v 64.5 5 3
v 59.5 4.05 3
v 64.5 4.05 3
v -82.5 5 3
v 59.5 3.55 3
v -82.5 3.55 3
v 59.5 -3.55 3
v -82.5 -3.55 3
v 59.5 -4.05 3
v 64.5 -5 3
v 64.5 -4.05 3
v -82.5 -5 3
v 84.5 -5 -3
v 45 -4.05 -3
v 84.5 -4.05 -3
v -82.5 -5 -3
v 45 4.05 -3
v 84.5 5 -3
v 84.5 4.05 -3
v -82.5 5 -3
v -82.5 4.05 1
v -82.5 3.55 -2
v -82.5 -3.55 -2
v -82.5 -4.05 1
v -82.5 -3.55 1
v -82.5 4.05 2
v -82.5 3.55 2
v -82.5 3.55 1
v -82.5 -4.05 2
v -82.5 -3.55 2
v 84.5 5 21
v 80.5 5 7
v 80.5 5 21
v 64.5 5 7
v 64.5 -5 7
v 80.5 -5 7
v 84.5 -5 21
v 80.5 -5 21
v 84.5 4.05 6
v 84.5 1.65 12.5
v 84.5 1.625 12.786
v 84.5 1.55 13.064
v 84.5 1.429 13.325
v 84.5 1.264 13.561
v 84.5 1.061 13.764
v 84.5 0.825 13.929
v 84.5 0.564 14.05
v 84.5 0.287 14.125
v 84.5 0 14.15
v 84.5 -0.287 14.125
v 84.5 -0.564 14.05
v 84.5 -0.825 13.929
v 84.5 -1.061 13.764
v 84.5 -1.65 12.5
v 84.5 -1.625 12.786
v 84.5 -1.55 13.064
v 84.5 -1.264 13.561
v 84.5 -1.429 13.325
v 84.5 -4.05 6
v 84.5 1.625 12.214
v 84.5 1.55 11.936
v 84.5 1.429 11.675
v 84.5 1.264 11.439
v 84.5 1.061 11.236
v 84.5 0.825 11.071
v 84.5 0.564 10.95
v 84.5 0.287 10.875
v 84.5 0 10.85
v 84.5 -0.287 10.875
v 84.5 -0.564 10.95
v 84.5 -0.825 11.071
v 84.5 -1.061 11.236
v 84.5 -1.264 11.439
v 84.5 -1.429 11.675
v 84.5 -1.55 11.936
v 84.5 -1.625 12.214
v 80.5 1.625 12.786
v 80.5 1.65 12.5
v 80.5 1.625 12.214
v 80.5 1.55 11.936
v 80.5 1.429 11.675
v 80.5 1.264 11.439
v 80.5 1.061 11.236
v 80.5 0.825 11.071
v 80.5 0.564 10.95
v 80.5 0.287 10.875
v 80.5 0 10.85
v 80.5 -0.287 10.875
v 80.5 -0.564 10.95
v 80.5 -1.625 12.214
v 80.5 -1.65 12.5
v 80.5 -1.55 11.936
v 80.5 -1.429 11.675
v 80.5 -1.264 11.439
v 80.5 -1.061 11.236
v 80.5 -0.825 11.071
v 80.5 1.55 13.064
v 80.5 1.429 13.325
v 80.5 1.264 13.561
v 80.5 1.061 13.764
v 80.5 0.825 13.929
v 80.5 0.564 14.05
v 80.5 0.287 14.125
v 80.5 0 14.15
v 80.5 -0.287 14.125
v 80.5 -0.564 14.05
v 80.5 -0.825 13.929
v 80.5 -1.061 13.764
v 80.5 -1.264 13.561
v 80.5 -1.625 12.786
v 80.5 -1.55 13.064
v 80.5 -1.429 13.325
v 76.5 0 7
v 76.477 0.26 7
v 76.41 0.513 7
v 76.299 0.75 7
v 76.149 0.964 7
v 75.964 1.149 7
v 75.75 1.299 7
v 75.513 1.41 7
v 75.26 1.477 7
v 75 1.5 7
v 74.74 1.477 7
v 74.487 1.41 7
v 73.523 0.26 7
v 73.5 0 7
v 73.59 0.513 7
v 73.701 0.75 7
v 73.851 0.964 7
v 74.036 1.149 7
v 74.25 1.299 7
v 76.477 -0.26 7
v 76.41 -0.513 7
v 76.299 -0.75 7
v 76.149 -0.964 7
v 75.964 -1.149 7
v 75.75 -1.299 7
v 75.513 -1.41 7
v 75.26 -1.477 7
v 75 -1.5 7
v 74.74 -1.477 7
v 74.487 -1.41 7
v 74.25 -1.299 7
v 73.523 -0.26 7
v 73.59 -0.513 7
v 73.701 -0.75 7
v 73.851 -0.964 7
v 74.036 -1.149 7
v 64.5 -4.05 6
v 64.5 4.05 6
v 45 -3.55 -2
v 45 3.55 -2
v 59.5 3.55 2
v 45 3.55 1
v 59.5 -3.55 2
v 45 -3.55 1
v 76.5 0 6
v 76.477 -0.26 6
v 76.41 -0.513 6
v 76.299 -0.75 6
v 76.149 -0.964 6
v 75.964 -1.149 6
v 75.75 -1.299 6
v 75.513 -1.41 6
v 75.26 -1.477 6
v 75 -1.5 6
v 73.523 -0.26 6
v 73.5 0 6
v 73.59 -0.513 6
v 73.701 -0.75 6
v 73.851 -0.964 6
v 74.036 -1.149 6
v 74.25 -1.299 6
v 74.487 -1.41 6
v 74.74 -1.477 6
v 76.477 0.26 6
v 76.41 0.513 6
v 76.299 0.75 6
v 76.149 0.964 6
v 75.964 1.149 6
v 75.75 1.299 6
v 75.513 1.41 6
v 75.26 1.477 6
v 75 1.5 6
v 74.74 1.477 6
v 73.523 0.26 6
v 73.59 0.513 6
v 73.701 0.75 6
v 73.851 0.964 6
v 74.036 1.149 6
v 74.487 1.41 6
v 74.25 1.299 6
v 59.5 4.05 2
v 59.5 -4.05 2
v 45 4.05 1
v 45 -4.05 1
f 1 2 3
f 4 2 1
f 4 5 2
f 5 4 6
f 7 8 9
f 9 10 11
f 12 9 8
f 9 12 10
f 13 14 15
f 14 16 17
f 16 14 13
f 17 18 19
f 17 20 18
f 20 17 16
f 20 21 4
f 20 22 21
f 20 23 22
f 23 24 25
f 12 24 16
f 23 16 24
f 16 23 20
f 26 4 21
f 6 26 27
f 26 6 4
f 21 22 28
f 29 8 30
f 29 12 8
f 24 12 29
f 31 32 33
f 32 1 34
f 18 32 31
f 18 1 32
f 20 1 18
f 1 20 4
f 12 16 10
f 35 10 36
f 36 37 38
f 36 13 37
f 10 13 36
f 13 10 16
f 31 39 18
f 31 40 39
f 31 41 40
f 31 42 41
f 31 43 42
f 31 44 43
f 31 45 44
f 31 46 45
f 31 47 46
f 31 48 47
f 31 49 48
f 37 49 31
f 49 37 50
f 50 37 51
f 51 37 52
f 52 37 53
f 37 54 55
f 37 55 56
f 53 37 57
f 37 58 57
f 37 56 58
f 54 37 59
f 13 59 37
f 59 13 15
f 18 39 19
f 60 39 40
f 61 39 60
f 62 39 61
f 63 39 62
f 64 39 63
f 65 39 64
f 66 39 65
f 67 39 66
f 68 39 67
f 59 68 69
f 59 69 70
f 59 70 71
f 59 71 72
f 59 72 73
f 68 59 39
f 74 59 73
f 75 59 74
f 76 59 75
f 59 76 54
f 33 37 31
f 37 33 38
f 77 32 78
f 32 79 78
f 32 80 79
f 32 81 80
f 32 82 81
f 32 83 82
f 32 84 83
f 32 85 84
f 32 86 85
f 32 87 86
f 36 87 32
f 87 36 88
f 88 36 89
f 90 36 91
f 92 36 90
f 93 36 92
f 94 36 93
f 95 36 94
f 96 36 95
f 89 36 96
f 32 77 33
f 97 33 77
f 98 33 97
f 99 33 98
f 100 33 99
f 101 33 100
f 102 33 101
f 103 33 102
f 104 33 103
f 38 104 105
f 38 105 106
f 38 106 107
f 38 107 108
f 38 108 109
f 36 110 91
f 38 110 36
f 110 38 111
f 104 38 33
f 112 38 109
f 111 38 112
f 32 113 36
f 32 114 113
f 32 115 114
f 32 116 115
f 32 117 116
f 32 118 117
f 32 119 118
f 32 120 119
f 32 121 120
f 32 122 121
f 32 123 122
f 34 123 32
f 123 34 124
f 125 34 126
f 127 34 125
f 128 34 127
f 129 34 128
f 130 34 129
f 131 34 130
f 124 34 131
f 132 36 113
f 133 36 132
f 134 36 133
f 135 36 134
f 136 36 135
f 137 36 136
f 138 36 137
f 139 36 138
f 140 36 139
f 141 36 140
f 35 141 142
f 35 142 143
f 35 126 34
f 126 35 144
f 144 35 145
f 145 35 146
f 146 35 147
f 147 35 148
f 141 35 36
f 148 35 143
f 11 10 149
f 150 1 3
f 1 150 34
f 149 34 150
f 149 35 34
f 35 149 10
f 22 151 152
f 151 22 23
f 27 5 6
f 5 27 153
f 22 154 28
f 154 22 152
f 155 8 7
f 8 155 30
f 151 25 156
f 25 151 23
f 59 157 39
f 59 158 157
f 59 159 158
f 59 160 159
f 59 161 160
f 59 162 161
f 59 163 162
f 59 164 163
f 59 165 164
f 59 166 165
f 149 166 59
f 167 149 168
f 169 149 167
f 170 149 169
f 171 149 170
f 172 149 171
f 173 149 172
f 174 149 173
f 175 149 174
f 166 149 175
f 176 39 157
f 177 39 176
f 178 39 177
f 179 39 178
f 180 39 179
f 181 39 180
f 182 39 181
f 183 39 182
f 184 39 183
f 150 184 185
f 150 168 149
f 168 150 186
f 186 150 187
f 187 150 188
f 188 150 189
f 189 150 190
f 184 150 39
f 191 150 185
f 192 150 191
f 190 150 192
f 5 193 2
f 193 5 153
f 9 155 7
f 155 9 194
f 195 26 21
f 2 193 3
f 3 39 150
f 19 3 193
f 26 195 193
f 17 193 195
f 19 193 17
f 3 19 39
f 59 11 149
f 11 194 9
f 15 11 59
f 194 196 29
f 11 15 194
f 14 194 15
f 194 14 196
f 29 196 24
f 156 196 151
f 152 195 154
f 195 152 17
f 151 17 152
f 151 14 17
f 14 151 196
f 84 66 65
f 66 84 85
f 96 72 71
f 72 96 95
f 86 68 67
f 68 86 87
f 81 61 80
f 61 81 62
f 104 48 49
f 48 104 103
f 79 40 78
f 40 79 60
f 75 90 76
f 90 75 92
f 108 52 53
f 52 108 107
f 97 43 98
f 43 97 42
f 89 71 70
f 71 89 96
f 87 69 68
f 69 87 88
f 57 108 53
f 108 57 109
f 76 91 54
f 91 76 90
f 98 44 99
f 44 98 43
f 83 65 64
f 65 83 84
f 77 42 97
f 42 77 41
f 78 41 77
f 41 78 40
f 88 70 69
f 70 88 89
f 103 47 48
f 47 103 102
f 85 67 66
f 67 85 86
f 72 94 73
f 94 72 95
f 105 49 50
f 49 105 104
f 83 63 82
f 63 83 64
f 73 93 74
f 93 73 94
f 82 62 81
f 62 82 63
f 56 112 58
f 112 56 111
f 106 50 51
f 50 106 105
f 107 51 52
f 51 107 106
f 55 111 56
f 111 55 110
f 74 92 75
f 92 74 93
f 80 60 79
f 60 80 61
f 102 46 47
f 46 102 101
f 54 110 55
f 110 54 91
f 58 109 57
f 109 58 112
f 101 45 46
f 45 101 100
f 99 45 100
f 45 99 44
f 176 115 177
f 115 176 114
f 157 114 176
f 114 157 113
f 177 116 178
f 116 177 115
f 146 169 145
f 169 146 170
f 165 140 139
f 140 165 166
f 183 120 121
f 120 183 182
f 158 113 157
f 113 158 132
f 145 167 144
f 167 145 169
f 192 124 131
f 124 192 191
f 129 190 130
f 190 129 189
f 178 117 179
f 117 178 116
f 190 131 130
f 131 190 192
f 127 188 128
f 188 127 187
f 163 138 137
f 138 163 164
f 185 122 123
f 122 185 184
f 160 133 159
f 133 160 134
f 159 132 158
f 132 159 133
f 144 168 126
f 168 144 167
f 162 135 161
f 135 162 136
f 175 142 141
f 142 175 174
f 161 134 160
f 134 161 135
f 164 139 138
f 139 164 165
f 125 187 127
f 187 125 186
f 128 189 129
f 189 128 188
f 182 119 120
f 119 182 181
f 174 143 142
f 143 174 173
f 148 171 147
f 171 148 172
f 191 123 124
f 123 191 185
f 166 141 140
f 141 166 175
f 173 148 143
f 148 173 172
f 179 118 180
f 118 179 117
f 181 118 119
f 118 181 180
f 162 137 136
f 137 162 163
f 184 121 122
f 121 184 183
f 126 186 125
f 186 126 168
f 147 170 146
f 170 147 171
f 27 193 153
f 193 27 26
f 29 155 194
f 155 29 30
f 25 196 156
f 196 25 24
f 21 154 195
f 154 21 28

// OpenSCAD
/*
 * Machdyne PNP
 * Copyright (c) 2023 Lone Dynamics Corporation. All rights reserved.
 *
 * Strip Feeder (Manual)
 *
 * These mount to the side of the rail, the tape must be peeled back manually.
 *
 */

$fn = 36;

tape_pitch = 4;

feeder_length = 165;
feeder_height = 6;
tape_width = 8.1;
wall = 1.9;

g1h = 19.5;
g2h = 14.25;

sfg1_offset = -5.5;
sfg2_offset = -20;

sfm();
//sfmf();

module sfm() {
	
	difference() {
		
		union() {
			
			difference() {
		
				union() {
					cube([feeder_length,tape_width+wall,feeder_height], center=true);
					translate([feeder_length/2,0,9]) cube([4,tape_width+wall,24], center=true);
					translate([feeder_length/2-8,0,2]) cube([20,tape_width+wall,feeder_height+4], center=true);
				}
				
				translate([-25,0,1]) cube([180,tape_width-1,6], center=true);
				translate([100,0,0.25]) cube([80,tape_width-1,4.5], center=true);
			
				translate([feeder_length/2-6,0,0]) cube([34,tape_width,feeder_height+6], center=true);
			}
		
			
		}

		// tape entry
		translate([65,0,-1]) cube([40,tape_width,5], center=true);
		
		// mount hole (note: 2020 rail is raised 5.5mm from table surface)
		rotate([0,90,0]) translate([(feeder_height/2)-15.5,0,0]) cylinder(d=3.3, h=2000, center=true);

		// tape foot mount hole can be used with a M3 bolt + foot (sfmf) to press the tape against the table
		translate([75,0,-10]) cylinder(d=3.0, h=50);

		// tape guide
		translate([-15,0,1.5]) cube([150,tape_width,1], center=true);
	}
		
}

module sfmf() {
	difference() {
		minkowski() {
			color([0,0.5,0.5]) translate([80,0,0]) cube([3.5,5,1.5], center=true);
			sphere(0.25);
		}
		color([0,0.5,0.5]) translate([80,0,0]) cylinder(d=3, h=1);
	}
}
